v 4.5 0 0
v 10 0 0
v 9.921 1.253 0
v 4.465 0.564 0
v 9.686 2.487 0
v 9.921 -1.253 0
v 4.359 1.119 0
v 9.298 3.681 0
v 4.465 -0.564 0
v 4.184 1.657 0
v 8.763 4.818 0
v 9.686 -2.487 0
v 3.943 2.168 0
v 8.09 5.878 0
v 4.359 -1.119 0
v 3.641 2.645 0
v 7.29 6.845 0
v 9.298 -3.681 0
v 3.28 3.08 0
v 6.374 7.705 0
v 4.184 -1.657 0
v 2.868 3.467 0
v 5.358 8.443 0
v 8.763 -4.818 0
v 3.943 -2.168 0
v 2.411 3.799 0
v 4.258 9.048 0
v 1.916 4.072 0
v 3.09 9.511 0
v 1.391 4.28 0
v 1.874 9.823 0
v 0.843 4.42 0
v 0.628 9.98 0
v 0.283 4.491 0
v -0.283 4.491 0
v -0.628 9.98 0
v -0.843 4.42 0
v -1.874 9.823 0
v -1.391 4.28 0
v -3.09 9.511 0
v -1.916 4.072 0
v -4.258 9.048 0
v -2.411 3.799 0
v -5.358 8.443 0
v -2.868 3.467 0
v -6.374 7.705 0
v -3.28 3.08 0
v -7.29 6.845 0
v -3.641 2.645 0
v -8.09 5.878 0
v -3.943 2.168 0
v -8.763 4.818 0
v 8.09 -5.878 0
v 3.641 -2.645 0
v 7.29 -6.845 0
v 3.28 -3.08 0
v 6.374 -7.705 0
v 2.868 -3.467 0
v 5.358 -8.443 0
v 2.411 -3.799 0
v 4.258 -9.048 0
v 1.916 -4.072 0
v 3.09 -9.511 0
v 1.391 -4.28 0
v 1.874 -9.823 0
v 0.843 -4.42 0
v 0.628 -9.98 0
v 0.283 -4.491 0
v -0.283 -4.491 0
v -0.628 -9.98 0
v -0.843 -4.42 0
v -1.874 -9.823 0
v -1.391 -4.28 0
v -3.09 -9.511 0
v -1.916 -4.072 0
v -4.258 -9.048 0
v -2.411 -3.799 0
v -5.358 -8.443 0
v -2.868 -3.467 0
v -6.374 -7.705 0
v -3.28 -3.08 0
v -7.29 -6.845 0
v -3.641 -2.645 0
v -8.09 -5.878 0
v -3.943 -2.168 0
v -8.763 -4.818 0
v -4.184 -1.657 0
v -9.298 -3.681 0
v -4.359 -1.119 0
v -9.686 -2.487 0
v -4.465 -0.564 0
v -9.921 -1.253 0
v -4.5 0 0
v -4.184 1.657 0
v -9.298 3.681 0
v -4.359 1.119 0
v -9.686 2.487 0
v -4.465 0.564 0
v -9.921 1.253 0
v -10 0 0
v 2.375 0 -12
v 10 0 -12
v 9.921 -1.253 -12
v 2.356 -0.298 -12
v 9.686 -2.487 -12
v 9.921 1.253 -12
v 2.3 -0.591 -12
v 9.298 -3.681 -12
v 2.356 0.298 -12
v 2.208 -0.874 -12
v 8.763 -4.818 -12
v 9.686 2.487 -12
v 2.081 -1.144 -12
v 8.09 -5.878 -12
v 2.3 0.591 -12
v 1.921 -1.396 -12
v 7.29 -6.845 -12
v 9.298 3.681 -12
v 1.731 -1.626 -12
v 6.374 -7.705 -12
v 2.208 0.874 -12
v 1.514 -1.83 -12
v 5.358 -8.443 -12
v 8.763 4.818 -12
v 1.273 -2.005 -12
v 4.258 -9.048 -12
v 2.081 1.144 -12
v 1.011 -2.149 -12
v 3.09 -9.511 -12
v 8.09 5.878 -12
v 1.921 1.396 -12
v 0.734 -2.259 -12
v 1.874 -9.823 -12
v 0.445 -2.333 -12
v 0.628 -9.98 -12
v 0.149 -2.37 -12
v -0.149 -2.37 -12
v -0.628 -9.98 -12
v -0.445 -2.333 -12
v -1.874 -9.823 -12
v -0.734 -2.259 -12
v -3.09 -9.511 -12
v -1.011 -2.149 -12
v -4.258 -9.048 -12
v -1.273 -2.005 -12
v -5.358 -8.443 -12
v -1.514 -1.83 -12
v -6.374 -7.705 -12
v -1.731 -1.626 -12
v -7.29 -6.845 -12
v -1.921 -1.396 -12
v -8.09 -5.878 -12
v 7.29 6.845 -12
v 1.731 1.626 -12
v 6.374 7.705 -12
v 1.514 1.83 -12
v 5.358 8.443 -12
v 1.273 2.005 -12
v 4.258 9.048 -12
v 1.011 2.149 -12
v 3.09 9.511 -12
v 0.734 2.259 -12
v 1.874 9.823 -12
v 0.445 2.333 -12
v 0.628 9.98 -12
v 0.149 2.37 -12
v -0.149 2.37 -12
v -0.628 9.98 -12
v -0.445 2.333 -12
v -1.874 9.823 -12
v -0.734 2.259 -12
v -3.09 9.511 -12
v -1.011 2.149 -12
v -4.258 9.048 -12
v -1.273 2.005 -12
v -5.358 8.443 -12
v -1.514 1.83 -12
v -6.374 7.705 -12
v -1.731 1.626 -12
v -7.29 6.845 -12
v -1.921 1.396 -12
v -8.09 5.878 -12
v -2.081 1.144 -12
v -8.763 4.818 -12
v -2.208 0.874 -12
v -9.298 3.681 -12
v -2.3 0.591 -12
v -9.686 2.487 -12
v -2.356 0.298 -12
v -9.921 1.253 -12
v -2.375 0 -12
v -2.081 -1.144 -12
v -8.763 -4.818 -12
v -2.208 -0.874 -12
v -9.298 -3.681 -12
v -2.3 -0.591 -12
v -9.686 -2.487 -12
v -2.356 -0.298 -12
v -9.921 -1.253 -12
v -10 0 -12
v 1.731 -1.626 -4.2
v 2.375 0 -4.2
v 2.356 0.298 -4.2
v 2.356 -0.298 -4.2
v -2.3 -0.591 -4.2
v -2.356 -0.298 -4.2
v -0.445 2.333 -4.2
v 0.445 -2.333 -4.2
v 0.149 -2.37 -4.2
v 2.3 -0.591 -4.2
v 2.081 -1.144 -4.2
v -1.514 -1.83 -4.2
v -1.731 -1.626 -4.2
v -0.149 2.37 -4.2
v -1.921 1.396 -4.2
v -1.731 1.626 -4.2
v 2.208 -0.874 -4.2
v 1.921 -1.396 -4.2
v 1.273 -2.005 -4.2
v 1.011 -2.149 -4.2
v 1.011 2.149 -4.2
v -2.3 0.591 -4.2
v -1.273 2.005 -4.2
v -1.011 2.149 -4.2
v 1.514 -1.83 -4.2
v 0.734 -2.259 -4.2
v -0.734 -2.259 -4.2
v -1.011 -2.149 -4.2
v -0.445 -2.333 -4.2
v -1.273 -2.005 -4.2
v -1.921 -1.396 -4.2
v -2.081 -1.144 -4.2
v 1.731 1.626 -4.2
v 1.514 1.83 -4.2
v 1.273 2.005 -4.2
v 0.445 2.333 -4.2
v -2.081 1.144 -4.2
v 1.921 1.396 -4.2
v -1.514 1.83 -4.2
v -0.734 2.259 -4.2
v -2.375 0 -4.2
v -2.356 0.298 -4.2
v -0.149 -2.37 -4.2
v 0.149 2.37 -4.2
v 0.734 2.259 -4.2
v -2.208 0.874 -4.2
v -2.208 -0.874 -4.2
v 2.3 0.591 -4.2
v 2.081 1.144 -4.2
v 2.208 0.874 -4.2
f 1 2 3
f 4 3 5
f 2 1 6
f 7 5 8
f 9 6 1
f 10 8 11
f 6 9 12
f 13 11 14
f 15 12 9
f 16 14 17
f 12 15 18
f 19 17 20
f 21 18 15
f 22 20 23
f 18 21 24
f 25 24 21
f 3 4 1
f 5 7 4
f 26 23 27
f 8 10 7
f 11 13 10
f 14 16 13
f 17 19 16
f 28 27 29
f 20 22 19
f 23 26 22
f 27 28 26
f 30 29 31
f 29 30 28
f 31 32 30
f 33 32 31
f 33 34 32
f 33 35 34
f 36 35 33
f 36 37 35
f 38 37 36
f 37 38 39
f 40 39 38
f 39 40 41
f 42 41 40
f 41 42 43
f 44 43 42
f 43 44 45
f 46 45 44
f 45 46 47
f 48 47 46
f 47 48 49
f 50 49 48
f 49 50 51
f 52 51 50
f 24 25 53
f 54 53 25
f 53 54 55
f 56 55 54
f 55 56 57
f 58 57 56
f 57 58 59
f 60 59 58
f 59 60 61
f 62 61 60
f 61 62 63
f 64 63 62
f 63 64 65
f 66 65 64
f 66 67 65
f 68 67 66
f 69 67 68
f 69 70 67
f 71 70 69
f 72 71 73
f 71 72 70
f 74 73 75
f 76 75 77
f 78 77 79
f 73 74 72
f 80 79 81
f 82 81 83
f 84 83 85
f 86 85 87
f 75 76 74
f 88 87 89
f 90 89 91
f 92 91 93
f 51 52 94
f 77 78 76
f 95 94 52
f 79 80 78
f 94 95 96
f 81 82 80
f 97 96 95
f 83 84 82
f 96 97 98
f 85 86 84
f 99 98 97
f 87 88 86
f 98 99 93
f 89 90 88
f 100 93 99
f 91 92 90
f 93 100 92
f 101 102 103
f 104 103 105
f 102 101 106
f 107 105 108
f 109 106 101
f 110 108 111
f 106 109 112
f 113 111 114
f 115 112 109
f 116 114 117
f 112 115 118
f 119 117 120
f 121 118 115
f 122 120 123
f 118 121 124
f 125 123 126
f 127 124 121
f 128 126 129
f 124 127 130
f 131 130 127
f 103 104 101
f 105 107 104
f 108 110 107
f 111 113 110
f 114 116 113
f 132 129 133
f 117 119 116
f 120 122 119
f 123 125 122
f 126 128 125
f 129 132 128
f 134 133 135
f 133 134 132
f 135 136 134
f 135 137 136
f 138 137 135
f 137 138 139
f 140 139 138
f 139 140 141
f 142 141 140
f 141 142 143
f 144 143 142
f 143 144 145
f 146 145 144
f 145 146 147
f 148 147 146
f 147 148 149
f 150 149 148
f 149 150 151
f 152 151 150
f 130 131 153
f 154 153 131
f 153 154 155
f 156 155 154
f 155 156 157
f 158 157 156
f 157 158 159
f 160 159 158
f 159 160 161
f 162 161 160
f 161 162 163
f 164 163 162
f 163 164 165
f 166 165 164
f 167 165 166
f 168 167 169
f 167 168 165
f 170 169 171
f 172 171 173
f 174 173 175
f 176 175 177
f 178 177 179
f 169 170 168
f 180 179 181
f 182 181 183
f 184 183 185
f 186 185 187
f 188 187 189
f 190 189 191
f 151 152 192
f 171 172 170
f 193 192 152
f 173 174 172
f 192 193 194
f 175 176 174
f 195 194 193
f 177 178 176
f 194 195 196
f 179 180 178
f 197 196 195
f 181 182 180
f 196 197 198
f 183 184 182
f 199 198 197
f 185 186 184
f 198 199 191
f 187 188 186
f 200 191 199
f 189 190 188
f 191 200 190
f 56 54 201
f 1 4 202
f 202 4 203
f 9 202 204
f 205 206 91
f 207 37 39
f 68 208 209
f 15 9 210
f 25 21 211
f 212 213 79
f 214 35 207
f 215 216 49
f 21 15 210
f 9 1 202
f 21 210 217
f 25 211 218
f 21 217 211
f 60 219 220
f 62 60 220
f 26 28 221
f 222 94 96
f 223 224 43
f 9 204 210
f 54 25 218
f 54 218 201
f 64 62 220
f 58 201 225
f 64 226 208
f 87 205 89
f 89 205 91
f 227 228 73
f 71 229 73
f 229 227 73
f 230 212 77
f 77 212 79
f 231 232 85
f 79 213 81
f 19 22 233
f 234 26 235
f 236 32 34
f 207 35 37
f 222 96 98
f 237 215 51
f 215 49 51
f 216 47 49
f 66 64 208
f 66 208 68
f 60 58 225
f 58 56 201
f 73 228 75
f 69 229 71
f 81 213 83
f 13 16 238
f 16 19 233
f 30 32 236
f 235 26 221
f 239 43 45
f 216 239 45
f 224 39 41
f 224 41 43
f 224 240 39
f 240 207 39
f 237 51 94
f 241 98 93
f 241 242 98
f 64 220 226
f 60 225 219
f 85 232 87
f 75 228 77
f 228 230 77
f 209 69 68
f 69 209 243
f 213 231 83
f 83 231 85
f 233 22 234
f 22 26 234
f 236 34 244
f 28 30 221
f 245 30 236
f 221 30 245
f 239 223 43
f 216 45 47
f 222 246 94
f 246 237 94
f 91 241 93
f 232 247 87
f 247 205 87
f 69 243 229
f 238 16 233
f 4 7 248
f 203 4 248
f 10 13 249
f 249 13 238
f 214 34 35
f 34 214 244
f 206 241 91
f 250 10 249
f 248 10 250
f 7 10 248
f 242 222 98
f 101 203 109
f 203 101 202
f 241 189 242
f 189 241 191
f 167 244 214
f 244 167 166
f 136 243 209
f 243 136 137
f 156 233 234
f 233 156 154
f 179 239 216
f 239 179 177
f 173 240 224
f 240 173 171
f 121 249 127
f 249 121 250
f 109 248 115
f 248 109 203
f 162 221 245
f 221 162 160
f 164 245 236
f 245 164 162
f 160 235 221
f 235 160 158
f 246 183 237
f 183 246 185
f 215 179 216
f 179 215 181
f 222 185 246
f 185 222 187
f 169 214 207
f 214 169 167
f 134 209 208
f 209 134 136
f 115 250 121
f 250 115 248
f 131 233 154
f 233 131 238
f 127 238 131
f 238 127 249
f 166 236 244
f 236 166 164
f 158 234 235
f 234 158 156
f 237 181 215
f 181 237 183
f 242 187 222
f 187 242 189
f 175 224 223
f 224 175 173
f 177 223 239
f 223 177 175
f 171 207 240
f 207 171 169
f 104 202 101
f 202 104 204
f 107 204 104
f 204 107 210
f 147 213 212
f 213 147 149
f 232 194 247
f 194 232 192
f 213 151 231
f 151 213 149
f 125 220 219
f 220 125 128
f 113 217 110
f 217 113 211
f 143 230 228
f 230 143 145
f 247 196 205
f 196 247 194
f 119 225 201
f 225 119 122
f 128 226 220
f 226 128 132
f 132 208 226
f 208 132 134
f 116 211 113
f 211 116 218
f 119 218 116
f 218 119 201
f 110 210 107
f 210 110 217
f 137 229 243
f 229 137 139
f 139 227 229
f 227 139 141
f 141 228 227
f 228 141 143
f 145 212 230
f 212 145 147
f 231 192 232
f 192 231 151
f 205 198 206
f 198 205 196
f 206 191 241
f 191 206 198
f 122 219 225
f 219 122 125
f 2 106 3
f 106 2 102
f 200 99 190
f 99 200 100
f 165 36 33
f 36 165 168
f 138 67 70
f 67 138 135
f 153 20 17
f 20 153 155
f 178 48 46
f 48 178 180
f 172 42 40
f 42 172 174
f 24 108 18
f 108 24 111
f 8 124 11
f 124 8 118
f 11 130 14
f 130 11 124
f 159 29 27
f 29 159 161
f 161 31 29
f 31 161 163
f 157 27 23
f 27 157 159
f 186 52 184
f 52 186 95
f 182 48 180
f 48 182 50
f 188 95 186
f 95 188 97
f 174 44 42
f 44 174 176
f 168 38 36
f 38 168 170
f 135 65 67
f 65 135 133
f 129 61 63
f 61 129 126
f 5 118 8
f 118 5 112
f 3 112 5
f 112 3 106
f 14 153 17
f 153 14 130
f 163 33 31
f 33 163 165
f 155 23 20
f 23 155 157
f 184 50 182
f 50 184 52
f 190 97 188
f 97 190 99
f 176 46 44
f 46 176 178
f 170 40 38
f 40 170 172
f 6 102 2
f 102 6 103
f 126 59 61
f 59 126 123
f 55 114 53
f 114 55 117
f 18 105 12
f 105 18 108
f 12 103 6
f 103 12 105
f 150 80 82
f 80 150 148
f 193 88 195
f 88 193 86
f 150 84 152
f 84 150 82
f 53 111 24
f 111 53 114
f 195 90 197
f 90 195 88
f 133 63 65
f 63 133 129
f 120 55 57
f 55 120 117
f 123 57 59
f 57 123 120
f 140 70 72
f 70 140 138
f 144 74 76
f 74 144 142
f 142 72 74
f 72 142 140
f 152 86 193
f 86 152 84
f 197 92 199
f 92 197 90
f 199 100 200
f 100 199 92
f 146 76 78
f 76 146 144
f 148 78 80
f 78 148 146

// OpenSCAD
$fn = 50;


difference() {
	union() {
		translate(v = [0, 0, -12.0000000000]) {
			cylinder(h = 12, r = 10.0000000000);
		}
		cylinder(h = 0, r = 19.0000000000);
	}
	union() {
		translate(v = [0, 0, 0]) {
			rotate(a = [0, 0, 0]) {
				difference() {
					union() {
						#translate(v = [0, 0, -12.0000000000]) {
							cylinder(h = 12, r = 2.2500000000);
						}
						#translate(v = [0, 0, -4.2000000000]) {
							cylinder(h = 4.2000000000, r = 10.0000000000, r1 = 2.3750000000, r2 = 4.5000000000);
						}
						#translate(v = [0, 0, -12.0000000000]) {
							cylinder(h = 12, r = 2.3750000000);
						}
						#translate(v = [0, 0, -12.0000000000]) {
							cylinder(h = 12, r = 2.2500000000);
						}
					}
					union();
				}
			}
		}
	}
}
